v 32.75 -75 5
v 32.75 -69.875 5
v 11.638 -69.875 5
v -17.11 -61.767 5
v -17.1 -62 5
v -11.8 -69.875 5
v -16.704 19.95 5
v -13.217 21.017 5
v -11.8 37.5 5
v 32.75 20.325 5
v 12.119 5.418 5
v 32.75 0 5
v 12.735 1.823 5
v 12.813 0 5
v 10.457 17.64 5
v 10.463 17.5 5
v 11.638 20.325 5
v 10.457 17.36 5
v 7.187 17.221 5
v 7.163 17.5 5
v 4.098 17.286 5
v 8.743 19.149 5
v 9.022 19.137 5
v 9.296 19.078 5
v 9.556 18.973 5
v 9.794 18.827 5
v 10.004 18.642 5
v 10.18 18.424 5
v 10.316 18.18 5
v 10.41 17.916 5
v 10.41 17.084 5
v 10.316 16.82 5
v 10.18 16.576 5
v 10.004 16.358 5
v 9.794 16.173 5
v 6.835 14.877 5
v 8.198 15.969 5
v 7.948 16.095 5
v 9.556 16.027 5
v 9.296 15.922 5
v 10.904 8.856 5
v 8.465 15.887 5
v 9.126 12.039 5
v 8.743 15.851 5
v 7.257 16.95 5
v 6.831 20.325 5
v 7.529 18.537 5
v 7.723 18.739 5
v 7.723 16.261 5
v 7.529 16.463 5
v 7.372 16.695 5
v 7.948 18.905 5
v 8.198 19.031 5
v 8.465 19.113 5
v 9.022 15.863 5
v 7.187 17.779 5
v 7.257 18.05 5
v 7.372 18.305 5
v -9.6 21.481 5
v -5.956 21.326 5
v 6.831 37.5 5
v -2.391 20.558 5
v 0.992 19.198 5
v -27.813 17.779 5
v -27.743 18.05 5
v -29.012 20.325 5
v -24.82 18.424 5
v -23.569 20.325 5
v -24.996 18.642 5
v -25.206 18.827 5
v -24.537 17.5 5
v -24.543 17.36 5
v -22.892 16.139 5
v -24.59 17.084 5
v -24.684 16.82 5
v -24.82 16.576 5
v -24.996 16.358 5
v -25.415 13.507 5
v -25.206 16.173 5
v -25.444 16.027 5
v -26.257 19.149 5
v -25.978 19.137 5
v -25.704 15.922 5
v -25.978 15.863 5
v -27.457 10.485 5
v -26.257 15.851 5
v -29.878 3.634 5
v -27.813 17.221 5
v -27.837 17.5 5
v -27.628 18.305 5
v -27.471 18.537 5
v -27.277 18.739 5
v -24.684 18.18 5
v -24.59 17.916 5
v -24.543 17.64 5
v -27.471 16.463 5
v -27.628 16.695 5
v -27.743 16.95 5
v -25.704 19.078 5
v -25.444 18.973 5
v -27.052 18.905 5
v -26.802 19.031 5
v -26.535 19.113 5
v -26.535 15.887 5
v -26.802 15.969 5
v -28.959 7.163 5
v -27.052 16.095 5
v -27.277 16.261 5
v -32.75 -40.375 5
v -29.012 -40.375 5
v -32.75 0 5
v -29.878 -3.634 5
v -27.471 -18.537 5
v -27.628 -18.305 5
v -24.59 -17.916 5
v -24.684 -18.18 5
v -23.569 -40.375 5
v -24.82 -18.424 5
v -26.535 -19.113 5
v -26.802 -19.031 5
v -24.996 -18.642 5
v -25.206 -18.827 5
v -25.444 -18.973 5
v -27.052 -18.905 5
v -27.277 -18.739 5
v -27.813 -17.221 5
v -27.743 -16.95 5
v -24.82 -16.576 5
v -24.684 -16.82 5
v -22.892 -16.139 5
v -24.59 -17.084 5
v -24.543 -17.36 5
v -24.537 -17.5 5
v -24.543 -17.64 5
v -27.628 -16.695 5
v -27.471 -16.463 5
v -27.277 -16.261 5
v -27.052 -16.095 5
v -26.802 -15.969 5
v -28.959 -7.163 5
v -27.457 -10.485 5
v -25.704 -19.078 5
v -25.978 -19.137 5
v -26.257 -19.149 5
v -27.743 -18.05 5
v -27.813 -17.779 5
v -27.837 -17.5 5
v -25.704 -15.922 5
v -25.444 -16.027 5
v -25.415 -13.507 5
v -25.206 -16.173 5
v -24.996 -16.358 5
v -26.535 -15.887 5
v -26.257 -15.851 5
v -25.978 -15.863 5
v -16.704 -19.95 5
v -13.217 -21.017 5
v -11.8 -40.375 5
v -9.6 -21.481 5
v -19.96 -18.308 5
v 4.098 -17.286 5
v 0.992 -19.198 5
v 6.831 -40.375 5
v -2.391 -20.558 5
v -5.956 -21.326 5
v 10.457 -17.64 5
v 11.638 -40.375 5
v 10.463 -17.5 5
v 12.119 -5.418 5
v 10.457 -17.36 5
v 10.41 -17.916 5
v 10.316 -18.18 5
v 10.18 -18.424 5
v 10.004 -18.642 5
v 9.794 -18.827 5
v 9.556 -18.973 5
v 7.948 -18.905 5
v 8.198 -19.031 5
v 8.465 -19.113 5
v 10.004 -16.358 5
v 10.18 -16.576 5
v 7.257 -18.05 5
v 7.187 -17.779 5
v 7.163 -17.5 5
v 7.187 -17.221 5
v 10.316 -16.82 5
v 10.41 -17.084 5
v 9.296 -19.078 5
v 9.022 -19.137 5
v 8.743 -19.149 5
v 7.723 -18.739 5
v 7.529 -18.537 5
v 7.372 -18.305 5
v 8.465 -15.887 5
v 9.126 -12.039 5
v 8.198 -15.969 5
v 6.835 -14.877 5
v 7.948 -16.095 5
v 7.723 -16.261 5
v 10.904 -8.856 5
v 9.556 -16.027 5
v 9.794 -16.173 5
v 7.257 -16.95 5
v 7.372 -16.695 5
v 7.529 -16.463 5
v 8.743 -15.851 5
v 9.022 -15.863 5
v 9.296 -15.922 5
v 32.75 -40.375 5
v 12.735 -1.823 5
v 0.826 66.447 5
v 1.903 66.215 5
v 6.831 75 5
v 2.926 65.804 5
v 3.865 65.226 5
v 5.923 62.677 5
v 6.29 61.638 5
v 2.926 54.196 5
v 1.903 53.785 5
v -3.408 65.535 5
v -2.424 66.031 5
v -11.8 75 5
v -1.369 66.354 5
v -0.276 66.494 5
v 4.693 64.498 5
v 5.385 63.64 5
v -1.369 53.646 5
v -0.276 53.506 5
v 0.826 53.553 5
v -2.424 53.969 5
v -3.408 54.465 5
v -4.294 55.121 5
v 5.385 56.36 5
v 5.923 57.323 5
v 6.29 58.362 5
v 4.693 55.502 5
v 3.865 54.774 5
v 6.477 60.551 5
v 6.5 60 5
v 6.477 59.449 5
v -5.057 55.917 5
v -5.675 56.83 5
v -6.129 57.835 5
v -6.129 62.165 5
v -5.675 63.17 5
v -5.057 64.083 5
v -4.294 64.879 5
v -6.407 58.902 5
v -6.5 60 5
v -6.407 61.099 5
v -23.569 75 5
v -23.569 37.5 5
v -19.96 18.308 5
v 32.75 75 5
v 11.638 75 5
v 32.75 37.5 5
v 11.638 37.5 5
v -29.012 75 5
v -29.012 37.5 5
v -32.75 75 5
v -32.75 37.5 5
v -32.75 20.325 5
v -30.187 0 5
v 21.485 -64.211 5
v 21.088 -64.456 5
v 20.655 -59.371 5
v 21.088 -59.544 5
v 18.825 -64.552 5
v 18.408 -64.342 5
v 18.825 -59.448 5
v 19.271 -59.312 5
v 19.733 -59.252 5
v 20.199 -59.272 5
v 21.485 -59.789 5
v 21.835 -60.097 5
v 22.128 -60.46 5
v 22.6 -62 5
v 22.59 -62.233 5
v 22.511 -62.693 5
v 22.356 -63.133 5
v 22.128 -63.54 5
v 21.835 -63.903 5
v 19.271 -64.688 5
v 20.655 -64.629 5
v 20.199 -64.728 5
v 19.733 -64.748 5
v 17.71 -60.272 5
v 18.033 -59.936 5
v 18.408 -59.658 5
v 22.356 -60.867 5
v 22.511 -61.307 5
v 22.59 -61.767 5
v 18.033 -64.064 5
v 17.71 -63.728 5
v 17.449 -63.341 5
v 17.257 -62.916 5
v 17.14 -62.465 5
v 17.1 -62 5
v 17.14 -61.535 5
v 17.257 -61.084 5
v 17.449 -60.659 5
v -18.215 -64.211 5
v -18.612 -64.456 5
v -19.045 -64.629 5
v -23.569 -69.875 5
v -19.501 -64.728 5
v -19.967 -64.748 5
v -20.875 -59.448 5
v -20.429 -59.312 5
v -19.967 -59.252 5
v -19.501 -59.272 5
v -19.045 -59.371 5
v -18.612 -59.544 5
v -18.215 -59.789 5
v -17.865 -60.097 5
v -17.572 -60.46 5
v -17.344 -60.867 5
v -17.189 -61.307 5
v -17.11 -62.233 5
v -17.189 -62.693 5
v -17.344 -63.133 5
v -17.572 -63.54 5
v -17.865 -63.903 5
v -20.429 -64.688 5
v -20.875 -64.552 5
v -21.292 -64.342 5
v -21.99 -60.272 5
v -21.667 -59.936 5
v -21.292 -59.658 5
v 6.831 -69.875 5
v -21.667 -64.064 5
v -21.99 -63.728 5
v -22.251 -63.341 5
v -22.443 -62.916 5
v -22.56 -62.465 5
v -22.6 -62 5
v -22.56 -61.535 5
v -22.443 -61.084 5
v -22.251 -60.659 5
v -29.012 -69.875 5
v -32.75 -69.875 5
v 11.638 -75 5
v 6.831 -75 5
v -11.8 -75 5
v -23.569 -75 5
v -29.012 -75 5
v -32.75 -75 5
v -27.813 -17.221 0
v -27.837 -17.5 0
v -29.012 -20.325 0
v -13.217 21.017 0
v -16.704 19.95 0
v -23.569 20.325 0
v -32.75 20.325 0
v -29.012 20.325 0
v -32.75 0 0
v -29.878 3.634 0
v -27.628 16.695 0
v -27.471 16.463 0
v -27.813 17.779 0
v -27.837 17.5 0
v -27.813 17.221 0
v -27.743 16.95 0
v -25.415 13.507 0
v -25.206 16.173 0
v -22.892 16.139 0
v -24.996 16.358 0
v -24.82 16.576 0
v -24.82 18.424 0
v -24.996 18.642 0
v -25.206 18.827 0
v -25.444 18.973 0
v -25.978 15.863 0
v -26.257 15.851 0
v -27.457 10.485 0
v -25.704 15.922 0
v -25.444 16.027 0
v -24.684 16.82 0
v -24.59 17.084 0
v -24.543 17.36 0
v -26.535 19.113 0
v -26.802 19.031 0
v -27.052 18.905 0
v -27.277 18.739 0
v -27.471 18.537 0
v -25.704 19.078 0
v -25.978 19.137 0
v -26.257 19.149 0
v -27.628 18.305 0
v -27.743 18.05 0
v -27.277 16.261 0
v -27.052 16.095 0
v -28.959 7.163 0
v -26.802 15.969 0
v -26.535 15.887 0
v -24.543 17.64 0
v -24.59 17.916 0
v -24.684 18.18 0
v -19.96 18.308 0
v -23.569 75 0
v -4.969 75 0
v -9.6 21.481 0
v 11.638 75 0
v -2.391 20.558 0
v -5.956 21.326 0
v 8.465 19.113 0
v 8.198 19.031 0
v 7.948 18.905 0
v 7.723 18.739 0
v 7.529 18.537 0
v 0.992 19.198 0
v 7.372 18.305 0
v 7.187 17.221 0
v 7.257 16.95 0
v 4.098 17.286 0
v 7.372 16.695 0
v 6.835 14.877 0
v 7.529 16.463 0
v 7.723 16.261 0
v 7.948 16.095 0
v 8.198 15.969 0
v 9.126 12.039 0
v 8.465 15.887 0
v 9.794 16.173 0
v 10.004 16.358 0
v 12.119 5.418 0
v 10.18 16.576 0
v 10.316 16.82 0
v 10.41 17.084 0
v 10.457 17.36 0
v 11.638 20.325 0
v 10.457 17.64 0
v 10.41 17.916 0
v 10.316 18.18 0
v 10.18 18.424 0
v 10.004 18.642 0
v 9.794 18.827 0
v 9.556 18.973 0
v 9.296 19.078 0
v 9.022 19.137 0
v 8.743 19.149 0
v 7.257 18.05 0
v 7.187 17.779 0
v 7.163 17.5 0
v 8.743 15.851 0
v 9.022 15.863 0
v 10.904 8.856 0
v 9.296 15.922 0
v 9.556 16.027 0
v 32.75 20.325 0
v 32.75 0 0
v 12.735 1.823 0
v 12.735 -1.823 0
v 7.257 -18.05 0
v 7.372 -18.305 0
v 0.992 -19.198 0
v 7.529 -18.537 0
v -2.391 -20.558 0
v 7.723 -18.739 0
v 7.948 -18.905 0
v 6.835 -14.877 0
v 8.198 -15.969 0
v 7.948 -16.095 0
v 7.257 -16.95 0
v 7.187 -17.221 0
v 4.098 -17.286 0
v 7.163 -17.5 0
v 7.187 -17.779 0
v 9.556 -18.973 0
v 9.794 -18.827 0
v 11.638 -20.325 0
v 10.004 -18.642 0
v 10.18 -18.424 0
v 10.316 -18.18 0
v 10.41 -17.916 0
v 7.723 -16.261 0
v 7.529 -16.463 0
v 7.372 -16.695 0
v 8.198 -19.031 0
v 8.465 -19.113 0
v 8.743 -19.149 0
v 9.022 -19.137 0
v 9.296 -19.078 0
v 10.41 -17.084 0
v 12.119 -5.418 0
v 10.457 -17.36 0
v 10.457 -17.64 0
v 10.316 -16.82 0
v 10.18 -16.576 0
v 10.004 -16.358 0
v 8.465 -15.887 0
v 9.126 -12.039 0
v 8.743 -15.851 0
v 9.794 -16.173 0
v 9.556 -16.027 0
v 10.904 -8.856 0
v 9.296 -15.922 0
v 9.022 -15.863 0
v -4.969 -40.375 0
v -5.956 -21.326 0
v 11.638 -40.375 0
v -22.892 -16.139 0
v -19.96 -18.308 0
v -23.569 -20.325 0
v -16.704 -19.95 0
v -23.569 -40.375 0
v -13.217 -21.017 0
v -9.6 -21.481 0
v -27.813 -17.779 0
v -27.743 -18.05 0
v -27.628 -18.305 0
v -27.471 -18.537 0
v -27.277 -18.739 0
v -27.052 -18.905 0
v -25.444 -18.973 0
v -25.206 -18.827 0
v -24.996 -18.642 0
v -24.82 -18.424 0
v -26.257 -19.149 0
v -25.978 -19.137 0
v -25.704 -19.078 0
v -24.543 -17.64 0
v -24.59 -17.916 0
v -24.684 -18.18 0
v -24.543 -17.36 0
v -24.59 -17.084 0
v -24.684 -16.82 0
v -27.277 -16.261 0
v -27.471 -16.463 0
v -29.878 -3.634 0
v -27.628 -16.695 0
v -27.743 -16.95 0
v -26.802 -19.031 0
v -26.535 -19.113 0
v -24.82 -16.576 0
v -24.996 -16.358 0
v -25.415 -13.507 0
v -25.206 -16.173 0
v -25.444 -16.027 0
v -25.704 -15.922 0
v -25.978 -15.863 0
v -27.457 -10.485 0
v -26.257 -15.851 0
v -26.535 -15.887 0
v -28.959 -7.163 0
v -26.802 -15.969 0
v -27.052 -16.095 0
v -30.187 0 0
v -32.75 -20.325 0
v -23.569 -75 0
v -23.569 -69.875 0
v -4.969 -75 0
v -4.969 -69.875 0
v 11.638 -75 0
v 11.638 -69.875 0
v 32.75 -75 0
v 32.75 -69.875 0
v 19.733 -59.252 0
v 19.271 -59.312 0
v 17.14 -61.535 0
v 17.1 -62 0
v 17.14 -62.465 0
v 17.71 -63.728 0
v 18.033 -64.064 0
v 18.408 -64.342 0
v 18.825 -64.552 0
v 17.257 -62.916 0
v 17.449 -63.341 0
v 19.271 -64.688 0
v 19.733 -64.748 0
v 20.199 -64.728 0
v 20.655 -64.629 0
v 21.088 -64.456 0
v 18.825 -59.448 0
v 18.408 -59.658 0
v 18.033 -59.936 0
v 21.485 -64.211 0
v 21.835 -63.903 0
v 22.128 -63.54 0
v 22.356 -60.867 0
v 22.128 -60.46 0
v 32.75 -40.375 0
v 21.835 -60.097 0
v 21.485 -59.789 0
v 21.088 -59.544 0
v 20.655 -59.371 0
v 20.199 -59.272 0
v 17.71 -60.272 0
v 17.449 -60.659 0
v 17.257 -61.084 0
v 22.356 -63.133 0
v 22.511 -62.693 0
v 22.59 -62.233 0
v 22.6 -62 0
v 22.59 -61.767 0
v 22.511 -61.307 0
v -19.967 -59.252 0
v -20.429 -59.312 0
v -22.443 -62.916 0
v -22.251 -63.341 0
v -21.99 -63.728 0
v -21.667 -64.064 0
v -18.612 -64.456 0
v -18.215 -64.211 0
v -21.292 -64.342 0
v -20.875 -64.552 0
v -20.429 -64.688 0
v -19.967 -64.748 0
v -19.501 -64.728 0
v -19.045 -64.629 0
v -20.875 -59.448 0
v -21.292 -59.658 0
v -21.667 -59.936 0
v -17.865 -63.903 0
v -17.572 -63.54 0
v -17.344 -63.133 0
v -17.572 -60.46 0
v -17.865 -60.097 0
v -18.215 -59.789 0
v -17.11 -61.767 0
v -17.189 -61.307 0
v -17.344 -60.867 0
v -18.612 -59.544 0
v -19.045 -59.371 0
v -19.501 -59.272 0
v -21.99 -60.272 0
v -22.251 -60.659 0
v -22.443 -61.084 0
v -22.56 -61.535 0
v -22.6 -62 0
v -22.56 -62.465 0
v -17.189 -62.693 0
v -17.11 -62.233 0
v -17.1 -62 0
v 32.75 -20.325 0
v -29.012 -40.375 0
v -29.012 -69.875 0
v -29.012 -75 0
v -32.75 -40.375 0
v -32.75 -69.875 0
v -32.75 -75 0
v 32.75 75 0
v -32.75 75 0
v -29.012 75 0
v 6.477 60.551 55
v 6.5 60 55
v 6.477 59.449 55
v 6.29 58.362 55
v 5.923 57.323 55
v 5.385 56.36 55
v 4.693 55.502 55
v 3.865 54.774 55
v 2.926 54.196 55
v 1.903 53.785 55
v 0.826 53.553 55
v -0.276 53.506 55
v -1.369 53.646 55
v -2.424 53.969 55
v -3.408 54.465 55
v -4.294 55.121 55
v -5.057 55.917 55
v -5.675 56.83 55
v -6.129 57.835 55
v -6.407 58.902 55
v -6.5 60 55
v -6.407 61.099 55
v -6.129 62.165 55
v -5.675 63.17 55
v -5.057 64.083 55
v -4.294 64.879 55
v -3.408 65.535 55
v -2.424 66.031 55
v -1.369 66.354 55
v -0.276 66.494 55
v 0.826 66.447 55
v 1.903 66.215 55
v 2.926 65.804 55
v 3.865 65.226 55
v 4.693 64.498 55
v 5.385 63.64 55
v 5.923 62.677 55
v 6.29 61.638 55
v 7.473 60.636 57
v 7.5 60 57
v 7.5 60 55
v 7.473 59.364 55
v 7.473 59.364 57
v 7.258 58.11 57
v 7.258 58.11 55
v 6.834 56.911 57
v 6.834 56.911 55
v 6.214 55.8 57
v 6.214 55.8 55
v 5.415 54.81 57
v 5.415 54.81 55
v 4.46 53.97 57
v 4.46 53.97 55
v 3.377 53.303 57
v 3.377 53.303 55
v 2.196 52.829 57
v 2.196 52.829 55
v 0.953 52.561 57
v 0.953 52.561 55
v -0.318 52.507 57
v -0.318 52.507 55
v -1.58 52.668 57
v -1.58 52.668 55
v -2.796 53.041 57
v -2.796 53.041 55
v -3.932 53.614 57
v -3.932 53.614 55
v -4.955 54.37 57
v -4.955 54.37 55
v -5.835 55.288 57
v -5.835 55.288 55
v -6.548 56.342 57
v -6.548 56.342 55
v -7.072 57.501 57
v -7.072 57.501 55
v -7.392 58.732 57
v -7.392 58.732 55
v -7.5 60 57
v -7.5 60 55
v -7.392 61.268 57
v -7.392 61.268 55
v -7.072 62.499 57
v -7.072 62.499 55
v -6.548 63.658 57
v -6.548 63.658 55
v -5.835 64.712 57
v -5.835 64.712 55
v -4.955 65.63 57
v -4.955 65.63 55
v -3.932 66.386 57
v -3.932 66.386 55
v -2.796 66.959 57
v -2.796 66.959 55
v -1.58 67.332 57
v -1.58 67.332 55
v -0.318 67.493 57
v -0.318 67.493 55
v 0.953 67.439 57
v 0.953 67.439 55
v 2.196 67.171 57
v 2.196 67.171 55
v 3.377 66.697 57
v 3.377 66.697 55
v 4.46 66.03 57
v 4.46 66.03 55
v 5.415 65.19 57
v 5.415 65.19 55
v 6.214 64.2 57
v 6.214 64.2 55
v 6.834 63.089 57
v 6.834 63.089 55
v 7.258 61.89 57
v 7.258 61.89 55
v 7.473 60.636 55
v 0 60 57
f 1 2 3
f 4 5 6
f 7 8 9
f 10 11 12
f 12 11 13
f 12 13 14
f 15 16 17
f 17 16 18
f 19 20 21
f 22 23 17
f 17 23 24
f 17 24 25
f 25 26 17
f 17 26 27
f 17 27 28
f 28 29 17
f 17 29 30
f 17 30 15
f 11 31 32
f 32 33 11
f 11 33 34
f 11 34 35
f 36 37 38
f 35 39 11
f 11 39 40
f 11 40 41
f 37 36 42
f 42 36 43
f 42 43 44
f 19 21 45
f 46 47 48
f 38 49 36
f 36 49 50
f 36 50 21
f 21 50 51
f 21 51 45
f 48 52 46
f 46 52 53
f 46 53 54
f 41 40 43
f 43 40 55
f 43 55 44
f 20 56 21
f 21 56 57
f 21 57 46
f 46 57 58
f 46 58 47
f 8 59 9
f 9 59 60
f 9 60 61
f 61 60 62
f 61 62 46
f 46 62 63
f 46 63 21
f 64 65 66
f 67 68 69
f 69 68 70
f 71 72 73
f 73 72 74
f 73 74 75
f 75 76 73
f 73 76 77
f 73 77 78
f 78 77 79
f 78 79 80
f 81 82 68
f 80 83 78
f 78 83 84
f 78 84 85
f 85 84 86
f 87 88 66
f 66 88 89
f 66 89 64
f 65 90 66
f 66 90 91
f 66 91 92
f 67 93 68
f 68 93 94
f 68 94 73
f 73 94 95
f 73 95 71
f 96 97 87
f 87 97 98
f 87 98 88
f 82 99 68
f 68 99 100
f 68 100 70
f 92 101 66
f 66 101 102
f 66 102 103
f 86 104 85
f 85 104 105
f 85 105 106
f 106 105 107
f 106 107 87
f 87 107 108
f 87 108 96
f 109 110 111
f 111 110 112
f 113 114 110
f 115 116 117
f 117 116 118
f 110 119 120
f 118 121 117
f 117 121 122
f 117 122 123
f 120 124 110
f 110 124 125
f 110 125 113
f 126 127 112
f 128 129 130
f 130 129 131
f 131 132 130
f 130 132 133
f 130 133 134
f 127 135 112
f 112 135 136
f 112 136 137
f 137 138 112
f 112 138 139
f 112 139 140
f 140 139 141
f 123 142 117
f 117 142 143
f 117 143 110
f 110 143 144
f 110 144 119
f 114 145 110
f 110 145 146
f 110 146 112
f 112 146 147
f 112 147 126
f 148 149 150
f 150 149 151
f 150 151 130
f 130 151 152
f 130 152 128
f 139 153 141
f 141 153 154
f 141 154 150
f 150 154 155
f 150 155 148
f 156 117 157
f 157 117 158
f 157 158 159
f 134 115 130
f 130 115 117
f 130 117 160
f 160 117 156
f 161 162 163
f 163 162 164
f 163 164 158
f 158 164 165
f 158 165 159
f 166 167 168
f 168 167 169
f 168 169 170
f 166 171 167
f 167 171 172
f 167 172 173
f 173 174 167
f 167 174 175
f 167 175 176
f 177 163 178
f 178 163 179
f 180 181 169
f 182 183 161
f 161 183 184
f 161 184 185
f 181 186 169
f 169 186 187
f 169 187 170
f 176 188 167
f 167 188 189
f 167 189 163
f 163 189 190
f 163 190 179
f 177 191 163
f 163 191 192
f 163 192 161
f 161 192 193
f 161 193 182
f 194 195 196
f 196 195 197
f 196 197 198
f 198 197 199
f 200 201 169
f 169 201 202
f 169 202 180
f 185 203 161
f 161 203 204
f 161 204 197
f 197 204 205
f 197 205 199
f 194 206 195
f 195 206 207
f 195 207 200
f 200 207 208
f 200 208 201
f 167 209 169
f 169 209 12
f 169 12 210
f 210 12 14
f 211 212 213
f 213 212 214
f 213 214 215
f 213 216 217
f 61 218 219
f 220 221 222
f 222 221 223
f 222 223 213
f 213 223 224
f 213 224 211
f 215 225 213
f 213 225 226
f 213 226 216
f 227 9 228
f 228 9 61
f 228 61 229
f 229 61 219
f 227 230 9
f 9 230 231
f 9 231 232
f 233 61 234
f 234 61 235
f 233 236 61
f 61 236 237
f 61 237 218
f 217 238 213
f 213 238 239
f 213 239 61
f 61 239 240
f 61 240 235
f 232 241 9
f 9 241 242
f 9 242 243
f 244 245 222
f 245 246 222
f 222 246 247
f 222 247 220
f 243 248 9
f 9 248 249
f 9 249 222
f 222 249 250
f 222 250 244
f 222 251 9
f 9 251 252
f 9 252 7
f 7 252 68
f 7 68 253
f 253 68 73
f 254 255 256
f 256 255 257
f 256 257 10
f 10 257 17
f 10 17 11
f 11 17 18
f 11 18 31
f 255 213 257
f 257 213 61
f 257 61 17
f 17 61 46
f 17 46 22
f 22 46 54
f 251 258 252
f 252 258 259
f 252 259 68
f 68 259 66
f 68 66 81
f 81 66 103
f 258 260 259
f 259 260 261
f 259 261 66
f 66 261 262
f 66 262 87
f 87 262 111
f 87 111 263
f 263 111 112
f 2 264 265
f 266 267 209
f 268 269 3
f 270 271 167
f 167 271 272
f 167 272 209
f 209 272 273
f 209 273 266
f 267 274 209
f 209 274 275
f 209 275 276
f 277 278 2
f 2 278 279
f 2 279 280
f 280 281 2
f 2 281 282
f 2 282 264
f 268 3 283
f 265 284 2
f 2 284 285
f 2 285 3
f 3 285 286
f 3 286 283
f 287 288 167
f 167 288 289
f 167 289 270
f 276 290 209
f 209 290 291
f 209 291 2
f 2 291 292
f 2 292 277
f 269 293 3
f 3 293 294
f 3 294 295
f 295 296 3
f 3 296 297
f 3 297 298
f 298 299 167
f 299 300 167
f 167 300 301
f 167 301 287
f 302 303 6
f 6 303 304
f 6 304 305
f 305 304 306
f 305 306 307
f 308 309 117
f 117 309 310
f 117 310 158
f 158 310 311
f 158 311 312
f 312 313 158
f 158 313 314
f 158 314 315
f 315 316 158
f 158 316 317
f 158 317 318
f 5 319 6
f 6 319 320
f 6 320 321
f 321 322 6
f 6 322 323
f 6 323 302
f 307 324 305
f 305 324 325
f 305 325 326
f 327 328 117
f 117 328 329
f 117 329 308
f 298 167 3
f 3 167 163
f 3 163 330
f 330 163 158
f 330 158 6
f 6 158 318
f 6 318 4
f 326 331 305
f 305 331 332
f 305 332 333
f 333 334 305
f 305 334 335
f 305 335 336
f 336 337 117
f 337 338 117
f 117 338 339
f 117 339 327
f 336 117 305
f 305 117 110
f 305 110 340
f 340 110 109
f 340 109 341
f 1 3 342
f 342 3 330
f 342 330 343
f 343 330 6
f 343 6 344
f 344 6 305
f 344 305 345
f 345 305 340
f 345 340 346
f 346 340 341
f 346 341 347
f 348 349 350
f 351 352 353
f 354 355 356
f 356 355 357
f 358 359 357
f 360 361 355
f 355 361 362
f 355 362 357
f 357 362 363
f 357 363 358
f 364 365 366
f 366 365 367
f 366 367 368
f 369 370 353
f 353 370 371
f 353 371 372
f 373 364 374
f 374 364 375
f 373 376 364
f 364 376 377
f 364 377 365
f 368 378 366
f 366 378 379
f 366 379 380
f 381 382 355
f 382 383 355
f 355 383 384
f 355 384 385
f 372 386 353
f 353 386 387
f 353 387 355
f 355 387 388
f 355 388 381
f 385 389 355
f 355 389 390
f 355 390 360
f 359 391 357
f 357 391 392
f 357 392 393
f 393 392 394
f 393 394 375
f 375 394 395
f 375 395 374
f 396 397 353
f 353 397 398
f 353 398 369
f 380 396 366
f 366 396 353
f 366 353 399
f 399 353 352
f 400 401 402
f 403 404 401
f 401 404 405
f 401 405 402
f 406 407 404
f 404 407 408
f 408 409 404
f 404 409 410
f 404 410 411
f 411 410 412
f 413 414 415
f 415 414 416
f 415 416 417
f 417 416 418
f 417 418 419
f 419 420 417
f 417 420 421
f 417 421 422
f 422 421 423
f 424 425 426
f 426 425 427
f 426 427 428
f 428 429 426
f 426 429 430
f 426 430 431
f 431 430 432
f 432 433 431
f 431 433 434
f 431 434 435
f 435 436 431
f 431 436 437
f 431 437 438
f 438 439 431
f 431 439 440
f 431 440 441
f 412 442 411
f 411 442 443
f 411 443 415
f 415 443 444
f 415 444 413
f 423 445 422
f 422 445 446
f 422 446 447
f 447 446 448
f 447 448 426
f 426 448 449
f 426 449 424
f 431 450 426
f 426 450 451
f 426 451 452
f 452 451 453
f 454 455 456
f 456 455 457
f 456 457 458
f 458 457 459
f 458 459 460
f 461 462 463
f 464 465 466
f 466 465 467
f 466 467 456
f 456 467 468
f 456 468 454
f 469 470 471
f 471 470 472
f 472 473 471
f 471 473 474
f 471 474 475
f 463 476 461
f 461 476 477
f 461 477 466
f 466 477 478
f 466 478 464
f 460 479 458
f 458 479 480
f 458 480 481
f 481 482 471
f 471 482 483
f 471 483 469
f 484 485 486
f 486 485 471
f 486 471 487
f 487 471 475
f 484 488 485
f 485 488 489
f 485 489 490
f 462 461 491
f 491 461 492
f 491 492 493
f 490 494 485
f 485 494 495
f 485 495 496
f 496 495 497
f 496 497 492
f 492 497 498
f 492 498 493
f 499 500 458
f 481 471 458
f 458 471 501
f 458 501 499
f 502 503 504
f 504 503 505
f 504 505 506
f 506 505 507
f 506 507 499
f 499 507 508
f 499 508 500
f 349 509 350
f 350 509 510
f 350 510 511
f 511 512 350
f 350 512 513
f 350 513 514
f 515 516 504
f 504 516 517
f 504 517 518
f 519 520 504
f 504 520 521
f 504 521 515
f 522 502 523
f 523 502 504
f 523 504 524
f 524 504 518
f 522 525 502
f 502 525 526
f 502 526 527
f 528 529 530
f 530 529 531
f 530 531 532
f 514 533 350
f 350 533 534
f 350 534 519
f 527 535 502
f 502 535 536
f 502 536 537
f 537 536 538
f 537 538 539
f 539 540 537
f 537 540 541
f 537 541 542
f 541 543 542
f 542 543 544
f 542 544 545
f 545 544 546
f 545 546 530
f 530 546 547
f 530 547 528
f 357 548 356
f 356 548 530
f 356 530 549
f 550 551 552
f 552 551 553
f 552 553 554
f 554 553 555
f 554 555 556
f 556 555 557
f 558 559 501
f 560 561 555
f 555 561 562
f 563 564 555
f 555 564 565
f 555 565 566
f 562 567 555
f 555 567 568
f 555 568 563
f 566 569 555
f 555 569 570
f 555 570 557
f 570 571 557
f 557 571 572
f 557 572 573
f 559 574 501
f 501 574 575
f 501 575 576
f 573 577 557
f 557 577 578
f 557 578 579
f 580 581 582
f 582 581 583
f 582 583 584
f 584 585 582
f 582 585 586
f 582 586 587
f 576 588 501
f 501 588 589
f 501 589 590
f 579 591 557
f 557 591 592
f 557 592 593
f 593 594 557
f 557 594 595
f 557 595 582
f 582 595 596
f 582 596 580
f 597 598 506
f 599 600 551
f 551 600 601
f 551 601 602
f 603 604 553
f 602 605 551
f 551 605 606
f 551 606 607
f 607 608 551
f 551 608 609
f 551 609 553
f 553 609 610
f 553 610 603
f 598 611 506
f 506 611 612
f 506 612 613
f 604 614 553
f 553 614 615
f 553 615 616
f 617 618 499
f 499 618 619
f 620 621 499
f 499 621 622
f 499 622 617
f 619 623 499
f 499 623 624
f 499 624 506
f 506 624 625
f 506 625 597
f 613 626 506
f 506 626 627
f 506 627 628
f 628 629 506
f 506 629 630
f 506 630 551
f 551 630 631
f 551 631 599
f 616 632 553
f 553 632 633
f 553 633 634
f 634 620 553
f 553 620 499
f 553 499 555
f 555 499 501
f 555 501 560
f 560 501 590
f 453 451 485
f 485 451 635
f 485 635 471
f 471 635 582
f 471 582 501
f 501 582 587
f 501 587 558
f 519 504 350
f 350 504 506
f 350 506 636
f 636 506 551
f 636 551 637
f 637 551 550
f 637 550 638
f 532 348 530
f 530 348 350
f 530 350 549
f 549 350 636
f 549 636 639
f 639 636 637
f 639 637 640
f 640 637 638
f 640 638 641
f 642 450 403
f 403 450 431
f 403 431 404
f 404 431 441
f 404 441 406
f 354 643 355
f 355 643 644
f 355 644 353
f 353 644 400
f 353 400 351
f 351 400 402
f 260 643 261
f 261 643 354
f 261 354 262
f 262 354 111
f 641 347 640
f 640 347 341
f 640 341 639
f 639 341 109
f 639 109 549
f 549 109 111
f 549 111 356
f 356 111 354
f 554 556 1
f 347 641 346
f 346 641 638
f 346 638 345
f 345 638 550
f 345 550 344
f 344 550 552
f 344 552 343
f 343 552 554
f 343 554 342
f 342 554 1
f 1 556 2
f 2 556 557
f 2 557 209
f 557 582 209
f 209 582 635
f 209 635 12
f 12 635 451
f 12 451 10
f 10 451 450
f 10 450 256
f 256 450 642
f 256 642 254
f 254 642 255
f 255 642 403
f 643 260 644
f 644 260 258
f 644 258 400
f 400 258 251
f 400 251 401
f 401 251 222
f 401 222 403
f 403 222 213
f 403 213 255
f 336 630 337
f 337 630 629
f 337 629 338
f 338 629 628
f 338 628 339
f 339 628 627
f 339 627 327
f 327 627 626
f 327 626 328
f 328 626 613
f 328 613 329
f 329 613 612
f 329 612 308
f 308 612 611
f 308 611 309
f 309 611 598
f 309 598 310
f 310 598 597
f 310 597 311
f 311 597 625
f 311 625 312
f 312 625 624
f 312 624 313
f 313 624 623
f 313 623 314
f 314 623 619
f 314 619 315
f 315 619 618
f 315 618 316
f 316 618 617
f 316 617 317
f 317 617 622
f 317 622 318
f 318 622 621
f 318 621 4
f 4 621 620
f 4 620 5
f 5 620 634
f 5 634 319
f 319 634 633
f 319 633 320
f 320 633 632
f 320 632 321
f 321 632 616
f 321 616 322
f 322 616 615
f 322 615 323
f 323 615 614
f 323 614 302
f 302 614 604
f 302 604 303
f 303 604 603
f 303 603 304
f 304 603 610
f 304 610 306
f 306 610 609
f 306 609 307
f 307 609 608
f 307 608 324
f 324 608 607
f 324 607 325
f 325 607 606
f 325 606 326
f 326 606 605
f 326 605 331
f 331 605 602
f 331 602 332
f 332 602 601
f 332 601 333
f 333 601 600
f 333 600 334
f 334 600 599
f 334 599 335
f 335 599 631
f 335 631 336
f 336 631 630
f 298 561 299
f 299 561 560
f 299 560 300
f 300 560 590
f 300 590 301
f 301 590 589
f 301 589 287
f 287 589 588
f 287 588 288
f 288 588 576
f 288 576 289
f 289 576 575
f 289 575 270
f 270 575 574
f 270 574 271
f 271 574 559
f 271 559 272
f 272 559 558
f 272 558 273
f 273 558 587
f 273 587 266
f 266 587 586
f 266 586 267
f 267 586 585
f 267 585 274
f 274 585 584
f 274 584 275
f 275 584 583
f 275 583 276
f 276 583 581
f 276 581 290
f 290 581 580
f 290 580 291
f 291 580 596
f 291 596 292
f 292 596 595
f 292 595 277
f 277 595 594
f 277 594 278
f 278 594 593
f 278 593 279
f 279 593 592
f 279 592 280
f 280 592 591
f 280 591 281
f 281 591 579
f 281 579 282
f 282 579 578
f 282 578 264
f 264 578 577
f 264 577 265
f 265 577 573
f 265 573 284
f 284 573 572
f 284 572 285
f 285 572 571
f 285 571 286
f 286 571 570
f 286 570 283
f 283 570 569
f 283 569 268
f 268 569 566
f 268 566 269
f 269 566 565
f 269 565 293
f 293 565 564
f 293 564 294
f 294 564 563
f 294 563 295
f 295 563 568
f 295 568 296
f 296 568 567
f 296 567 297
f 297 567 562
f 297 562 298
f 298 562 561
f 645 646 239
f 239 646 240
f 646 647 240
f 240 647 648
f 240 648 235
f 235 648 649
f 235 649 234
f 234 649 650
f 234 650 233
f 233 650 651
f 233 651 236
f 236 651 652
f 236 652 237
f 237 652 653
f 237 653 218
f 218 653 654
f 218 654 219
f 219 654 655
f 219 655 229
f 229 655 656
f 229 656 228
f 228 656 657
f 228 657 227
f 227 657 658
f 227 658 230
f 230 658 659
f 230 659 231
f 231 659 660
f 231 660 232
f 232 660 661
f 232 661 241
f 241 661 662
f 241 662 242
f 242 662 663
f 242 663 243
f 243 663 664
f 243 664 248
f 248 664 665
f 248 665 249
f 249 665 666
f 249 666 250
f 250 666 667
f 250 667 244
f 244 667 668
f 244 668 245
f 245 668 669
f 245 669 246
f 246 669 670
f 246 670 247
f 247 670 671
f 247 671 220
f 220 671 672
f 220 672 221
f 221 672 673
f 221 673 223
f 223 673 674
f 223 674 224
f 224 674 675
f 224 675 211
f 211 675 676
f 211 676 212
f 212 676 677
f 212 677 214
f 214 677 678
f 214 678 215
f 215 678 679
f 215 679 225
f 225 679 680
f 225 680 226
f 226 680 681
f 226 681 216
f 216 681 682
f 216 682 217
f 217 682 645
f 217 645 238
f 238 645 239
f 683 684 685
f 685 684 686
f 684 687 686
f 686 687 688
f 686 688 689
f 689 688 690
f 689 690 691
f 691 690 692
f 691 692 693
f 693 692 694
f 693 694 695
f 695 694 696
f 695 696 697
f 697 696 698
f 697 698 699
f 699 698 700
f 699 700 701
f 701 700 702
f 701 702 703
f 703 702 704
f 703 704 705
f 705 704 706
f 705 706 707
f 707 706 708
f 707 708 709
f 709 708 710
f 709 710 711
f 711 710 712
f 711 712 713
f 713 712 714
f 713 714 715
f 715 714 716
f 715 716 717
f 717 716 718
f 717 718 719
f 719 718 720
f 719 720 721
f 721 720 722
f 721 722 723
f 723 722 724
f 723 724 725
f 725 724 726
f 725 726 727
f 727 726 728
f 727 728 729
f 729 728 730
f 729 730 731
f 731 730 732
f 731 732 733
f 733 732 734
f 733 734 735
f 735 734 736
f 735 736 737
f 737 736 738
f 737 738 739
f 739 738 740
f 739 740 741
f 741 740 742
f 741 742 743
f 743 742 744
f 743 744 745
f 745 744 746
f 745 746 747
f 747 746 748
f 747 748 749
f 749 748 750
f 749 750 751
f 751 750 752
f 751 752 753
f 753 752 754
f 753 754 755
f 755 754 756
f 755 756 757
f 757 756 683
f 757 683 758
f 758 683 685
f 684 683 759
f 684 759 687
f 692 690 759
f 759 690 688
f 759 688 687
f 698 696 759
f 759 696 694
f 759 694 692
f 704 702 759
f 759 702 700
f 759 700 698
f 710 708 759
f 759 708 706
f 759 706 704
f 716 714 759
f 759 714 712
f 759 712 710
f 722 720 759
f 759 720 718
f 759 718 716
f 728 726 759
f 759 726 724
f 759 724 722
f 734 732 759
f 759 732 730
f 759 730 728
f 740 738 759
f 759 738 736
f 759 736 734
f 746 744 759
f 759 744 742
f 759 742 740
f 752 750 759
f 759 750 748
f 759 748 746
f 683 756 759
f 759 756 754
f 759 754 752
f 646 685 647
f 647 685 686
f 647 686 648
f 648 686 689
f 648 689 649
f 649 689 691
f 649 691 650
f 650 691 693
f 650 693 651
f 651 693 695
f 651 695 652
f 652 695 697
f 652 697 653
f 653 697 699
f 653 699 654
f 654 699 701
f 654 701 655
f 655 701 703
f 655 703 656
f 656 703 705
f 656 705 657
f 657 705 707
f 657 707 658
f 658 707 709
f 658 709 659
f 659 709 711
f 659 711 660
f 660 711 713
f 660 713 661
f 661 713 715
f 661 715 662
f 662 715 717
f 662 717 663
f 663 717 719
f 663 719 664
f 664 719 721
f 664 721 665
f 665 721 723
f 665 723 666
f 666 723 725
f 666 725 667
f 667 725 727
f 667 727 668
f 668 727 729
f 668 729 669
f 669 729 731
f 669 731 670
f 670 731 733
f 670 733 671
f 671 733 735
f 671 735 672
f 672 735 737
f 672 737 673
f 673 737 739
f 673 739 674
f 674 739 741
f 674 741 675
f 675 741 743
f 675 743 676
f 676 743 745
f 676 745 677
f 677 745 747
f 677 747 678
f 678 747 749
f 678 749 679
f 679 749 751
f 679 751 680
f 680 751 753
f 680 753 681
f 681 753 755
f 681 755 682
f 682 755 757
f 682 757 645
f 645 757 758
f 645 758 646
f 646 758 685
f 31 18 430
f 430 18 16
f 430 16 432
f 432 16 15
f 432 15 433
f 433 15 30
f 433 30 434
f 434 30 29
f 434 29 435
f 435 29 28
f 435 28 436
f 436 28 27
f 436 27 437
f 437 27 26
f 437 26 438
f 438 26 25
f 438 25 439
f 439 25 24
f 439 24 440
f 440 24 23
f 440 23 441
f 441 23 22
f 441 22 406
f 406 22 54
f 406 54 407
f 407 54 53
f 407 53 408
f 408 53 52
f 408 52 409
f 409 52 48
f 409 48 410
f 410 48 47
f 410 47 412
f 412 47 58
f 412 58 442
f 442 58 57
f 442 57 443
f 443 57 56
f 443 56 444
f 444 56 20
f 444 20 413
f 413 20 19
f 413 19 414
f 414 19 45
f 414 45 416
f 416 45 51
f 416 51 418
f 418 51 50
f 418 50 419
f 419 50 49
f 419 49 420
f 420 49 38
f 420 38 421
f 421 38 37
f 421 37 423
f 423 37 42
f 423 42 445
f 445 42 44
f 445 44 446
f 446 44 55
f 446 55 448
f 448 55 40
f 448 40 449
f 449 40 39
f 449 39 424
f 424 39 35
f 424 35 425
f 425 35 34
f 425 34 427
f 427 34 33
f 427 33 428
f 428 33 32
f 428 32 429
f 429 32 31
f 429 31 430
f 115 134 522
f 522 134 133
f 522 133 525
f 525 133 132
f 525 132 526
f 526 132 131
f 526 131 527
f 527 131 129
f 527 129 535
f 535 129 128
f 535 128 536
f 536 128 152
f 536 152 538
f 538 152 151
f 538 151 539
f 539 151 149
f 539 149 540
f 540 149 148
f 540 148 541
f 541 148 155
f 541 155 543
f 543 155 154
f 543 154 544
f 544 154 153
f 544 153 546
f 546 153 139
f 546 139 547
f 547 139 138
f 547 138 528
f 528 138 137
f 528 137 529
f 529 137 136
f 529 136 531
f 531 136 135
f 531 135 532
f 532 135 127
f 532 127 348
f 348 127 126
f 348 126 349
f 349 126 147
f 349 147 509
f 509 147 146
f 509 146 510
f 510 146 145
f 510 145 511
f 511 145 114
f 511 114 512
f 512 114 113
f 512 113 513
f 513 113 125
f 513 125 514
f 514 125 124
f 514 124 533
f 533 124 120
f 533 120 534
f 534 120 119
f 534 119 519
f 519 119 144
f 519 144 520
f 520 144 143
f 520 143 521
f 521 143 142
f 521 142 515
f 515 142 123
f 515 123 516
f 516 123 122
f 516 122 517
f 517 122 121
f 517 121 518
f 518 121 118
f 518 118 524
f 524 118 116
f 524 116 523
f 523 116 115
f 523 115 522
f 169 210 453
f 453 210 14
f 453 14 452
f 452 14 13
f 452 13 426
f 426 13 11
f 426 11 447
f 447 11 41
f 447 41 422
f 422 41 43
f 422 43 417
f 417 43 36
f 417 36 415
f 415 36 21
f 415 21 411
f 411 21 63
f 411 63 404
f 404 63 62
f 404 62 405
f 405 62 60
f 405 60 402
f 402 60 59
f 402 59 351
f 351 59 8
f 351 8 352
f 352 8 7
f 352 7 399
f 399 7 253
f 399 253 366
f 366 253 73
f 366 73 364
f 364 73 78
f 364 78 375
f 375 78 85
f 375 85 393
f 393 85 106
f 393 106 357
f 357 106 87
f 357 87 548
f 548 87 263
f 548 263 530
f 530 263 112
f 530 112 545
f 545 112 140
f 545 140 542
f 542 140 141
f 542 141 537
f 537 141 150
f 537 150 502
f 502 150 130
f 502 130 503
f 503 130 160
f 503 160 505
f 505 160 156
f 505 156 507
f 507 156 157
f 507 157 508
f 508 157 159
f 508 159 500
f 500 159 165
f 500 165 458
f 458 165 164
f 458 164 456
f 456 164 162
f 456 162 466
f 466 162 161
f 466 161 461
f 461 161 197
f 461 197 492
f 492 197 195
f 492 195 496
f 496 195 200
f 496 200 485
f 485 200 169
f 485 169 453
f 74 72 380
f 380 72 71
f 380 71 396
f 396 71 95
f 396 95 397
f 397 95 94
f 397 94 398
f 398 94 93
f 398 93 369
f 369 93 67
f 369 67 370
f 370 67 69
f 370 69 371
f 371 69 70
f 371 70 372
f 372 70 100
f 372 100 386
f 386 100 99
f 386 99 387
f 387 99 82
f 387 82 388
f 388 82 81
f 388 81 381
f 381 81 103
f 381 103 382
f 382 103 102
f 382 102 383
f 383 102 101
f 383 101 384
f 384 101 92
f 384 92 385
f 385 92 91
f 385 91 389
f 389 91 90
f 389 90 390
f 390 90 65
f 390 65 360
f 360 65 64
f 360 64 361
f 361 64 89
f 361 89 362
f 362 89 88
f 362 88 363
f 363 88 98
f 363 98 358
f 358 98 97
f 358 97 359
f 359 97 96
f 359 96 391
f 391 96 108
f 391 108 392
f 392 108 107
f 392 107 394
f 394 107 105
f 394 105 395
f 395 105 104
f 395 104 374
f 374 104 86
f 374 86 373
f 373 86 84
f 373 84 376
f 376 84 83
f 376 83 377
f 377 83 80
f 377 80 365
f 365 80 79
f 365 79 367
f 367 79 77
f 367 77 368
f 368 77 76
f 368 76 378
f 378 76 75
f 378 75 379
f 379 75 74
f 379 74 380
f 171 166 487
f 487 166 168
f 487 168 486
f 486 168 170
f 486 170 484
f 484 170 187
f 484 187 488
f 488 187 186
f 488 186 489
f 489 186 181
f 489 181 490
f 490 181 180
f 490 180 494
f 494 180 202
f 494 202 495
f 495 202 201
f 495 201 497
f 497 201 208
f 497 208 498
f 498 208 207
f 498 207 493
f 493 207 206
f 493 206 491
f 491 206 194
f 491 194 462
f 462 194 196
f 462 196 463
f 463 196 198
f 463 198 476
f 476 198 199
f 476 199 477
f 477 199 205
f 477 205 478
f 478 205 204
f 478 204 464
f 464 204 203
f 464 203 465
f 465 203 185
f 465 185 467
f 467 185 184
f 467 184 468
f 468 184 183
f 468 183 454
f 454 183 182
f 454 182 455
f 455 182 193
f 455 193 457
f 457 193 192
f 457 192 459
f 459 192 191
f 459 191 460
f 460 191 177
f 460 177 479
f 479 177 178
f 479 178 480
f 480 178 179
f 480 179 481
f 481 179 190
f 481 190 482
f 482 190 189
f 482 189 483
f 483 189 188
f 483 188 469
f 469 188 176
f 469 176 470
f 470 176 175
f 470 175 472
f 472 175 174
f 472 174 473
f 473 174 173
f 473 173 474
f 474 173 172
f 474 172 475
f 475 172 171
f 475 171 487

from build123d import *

# Parameters (mm, degrees)
SKETCH1_W           = 65.5
SKETCH1_H           = 150
SKETCH1_R           = 2.75
BOSS_EXTRUDE1_DEPTH = 5
SKETCH2_R           = 6.5
BOSS_EXTRUDE2_DEPTH = 50
SKETCH3_R           = 7.5
BOSS_EXTRUDE3_DEPTH = 2
SKETCH4_R           = 1.65
SKETCH4_R_2         = 21.5
CUT_EXTRUDE1_DEPTH  = 100.732454597


with BuildPart() as part:
    # Sketch1 → Boss-Extrude1 (new body)
    with BuildSketch(Plane.XY):
        Rectangle(SKETCH1_W, SKETCH1_H)
        with Locations((-19.85, -62)):
            Circle(SKETCH1_R, mode=Mode.SUBTRACT)
        with Locations((19.85, -62)):
            Circle(SKETCH1_R, mode=Mode.SUBTRACT)
    extrude(amount=BOSS_EXTRUDE1_DEPTH)

    # Sketch2 → Boss-Extrude2 (add)
    with BuildSketch(Plane.XY.offset(5)):
        with Locations((0, 60)):
            Circle(SKETCH2_R)
    extrude(amount=BOSS_EXTRUDE2_DEPTH)

    # Sketch3 → Boss-Extrude3 (add)
    with BuildSketch(Plane.XY.offset(55)):
        with Locations((0, 60)):
            Circle(SKETCH3_R)
    extrude(amount=BOSS_EXTRUDE3_DEPTH)

    # Sketch4 → Cut-Extrude1 (cut, through all)
    with BuildSketch(Plane(origin=(0, 0, 0), x_dir=(-1, 0, 0), z_dir=(0, 0, -1))):
        with Locations((26.187094913, 17.5)):
            Circle(SKETCH4_R)
        with Locations((-8.812905087, 17.5)):
            Circle(SKETCH4_R)
        with Locations((-8.812905087, -17.5)):
            Circle(SKETCH4_R)
        with Locations((26.187094913, -17.5)):
            Circle(SKETCH4_R)
        with Locations((8.687094913, 0)):
            Circle(SKETCH4_R_2)
    extrude(amount=-CUT_EXTRUDE1_DEPTH, mode=Mode.SUBTRACT)


solid = part.part
